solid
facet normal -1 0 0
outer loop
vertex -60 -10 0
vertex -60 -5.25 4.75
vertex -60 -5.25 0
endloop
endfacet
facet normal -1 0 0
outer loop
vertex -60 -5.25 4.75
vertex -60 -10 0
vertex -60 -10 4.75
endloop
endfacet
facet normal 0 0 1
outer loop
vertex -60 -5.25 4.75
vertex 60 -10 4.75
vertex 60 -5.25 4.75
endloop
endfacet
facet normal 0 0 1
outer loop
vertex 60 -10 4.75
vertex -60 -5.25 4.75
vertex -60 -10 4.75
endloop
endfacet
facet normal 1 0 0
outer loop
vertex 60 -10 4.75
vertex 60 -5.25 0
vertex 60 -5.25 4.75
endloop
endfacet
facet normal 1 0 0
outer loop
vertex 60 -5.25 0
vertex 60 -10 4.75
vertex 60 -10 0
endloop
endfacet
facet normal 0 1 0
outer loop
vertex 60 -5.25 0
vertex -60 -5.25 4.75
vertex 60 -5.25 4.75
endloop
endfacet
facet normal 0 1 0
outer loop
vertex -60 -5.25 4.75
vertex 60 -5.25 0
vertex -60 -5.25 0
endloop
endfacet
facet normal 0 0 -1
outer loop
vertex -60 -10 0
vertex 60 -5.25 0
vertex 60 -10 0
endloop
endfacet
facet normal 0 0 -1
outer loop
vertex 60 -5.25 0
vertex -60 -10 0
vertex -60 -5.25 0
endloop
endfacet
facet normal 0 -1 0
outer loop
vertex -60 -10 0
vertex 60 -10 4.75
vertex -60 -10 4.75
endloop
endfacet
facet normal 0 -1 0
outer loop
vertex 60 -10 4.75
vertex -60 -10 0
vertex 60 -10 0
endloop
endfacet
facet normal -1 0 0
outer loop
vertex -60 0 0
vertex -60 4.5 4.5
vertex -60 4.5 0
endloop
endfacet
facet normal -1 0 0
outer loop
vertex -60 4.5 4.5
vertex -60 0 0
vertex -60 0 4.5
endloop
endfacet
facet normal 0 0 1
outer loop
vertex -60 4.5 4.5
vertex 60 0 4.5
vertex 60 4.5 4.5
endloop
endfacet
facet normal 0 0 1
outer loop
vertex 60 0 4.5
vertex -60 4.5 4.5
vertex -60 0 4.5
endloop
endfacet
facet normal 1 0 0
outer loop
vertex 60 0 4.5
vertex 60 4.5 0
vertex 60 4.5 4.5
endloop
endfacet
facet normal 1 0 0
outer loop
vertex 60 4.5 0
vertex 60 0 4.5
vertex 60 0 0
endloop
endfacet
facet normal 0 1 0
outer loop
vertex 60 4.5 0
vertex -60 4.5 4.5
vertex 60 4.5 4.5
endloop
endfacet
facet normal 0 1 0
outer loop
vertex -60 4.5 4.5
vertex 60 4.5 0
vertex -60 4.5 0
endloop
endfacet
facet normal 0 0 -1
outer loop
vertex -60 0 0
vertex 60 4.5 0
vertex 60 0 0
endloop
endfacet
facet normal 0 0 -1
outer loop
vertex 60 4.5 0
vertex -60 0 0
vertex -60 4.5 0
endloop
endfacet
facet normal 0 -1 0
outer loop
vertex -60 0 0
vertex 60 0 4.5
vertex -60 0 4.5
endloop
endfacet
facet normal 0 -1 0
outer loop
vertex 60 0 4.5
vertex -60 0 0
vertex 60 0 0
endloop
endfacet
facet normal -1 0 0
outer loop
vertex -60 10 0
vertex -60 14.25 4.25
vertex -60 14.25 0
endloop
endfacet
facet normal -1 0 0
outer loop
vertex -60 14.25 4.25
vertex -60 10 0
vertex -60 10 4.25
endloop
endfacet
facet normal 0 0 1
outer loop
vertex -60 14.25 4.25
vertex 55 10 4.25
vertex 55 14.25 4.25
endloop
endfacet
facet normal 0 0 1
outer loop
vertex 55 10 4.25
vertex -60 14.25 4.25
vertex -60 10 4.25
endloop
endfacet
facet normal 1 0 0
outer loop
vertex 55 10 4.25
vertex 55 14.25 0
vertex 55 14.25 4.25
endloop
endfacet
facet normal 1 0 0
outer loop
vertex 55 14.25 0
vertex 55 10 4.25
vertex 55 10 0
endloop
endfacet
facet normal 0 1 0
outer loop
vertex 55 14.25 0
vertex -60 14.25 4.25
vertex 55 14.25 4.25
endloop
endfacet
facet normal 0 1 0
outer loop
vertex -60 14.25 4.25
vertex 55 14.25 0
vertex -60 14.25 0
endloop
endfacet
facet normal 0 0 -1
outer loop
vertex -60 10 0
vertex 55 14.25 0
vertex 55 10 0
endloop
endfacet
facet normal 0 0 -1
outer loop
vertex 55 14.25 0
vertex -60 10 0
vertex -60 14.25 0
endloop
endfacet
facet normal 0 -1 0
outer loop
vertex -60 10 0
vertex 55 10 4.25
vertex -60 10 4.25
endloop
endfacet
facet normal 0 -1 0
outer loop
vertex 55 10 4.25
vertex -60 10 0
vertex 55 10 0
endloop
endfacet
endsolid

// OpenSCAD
translate ([0,-30,0])
union() {
//        translate([-60,-4,0])
//            cube([125,6,6]); 
//        translate([-60,5,0])
//            cube([125,6,6]);

//        translate([-60,14,0])
//            cube([120,5,5]);
//        translate([-60,21,0])
//            cube([120,5,5]); 
//        
//        translate([-60,28,0])
//            cube([115,4,4]);
//        translate([-60,35,0])
//            cube([115,4,4]); 
    
//        translate([-60,42,0])
//            cube([105,3,3]);
//        translate([-60,49,0])
//            cube([105,3,3]); 
    
    

        translate([-60,20,0])
            cube([120,4.75,4.75]);            
        translate([-60,30,0])
            cube([120,4.5,4.5]); 
        translate([-60,40,0])
            cube([115,4.25,4.25]);

}
